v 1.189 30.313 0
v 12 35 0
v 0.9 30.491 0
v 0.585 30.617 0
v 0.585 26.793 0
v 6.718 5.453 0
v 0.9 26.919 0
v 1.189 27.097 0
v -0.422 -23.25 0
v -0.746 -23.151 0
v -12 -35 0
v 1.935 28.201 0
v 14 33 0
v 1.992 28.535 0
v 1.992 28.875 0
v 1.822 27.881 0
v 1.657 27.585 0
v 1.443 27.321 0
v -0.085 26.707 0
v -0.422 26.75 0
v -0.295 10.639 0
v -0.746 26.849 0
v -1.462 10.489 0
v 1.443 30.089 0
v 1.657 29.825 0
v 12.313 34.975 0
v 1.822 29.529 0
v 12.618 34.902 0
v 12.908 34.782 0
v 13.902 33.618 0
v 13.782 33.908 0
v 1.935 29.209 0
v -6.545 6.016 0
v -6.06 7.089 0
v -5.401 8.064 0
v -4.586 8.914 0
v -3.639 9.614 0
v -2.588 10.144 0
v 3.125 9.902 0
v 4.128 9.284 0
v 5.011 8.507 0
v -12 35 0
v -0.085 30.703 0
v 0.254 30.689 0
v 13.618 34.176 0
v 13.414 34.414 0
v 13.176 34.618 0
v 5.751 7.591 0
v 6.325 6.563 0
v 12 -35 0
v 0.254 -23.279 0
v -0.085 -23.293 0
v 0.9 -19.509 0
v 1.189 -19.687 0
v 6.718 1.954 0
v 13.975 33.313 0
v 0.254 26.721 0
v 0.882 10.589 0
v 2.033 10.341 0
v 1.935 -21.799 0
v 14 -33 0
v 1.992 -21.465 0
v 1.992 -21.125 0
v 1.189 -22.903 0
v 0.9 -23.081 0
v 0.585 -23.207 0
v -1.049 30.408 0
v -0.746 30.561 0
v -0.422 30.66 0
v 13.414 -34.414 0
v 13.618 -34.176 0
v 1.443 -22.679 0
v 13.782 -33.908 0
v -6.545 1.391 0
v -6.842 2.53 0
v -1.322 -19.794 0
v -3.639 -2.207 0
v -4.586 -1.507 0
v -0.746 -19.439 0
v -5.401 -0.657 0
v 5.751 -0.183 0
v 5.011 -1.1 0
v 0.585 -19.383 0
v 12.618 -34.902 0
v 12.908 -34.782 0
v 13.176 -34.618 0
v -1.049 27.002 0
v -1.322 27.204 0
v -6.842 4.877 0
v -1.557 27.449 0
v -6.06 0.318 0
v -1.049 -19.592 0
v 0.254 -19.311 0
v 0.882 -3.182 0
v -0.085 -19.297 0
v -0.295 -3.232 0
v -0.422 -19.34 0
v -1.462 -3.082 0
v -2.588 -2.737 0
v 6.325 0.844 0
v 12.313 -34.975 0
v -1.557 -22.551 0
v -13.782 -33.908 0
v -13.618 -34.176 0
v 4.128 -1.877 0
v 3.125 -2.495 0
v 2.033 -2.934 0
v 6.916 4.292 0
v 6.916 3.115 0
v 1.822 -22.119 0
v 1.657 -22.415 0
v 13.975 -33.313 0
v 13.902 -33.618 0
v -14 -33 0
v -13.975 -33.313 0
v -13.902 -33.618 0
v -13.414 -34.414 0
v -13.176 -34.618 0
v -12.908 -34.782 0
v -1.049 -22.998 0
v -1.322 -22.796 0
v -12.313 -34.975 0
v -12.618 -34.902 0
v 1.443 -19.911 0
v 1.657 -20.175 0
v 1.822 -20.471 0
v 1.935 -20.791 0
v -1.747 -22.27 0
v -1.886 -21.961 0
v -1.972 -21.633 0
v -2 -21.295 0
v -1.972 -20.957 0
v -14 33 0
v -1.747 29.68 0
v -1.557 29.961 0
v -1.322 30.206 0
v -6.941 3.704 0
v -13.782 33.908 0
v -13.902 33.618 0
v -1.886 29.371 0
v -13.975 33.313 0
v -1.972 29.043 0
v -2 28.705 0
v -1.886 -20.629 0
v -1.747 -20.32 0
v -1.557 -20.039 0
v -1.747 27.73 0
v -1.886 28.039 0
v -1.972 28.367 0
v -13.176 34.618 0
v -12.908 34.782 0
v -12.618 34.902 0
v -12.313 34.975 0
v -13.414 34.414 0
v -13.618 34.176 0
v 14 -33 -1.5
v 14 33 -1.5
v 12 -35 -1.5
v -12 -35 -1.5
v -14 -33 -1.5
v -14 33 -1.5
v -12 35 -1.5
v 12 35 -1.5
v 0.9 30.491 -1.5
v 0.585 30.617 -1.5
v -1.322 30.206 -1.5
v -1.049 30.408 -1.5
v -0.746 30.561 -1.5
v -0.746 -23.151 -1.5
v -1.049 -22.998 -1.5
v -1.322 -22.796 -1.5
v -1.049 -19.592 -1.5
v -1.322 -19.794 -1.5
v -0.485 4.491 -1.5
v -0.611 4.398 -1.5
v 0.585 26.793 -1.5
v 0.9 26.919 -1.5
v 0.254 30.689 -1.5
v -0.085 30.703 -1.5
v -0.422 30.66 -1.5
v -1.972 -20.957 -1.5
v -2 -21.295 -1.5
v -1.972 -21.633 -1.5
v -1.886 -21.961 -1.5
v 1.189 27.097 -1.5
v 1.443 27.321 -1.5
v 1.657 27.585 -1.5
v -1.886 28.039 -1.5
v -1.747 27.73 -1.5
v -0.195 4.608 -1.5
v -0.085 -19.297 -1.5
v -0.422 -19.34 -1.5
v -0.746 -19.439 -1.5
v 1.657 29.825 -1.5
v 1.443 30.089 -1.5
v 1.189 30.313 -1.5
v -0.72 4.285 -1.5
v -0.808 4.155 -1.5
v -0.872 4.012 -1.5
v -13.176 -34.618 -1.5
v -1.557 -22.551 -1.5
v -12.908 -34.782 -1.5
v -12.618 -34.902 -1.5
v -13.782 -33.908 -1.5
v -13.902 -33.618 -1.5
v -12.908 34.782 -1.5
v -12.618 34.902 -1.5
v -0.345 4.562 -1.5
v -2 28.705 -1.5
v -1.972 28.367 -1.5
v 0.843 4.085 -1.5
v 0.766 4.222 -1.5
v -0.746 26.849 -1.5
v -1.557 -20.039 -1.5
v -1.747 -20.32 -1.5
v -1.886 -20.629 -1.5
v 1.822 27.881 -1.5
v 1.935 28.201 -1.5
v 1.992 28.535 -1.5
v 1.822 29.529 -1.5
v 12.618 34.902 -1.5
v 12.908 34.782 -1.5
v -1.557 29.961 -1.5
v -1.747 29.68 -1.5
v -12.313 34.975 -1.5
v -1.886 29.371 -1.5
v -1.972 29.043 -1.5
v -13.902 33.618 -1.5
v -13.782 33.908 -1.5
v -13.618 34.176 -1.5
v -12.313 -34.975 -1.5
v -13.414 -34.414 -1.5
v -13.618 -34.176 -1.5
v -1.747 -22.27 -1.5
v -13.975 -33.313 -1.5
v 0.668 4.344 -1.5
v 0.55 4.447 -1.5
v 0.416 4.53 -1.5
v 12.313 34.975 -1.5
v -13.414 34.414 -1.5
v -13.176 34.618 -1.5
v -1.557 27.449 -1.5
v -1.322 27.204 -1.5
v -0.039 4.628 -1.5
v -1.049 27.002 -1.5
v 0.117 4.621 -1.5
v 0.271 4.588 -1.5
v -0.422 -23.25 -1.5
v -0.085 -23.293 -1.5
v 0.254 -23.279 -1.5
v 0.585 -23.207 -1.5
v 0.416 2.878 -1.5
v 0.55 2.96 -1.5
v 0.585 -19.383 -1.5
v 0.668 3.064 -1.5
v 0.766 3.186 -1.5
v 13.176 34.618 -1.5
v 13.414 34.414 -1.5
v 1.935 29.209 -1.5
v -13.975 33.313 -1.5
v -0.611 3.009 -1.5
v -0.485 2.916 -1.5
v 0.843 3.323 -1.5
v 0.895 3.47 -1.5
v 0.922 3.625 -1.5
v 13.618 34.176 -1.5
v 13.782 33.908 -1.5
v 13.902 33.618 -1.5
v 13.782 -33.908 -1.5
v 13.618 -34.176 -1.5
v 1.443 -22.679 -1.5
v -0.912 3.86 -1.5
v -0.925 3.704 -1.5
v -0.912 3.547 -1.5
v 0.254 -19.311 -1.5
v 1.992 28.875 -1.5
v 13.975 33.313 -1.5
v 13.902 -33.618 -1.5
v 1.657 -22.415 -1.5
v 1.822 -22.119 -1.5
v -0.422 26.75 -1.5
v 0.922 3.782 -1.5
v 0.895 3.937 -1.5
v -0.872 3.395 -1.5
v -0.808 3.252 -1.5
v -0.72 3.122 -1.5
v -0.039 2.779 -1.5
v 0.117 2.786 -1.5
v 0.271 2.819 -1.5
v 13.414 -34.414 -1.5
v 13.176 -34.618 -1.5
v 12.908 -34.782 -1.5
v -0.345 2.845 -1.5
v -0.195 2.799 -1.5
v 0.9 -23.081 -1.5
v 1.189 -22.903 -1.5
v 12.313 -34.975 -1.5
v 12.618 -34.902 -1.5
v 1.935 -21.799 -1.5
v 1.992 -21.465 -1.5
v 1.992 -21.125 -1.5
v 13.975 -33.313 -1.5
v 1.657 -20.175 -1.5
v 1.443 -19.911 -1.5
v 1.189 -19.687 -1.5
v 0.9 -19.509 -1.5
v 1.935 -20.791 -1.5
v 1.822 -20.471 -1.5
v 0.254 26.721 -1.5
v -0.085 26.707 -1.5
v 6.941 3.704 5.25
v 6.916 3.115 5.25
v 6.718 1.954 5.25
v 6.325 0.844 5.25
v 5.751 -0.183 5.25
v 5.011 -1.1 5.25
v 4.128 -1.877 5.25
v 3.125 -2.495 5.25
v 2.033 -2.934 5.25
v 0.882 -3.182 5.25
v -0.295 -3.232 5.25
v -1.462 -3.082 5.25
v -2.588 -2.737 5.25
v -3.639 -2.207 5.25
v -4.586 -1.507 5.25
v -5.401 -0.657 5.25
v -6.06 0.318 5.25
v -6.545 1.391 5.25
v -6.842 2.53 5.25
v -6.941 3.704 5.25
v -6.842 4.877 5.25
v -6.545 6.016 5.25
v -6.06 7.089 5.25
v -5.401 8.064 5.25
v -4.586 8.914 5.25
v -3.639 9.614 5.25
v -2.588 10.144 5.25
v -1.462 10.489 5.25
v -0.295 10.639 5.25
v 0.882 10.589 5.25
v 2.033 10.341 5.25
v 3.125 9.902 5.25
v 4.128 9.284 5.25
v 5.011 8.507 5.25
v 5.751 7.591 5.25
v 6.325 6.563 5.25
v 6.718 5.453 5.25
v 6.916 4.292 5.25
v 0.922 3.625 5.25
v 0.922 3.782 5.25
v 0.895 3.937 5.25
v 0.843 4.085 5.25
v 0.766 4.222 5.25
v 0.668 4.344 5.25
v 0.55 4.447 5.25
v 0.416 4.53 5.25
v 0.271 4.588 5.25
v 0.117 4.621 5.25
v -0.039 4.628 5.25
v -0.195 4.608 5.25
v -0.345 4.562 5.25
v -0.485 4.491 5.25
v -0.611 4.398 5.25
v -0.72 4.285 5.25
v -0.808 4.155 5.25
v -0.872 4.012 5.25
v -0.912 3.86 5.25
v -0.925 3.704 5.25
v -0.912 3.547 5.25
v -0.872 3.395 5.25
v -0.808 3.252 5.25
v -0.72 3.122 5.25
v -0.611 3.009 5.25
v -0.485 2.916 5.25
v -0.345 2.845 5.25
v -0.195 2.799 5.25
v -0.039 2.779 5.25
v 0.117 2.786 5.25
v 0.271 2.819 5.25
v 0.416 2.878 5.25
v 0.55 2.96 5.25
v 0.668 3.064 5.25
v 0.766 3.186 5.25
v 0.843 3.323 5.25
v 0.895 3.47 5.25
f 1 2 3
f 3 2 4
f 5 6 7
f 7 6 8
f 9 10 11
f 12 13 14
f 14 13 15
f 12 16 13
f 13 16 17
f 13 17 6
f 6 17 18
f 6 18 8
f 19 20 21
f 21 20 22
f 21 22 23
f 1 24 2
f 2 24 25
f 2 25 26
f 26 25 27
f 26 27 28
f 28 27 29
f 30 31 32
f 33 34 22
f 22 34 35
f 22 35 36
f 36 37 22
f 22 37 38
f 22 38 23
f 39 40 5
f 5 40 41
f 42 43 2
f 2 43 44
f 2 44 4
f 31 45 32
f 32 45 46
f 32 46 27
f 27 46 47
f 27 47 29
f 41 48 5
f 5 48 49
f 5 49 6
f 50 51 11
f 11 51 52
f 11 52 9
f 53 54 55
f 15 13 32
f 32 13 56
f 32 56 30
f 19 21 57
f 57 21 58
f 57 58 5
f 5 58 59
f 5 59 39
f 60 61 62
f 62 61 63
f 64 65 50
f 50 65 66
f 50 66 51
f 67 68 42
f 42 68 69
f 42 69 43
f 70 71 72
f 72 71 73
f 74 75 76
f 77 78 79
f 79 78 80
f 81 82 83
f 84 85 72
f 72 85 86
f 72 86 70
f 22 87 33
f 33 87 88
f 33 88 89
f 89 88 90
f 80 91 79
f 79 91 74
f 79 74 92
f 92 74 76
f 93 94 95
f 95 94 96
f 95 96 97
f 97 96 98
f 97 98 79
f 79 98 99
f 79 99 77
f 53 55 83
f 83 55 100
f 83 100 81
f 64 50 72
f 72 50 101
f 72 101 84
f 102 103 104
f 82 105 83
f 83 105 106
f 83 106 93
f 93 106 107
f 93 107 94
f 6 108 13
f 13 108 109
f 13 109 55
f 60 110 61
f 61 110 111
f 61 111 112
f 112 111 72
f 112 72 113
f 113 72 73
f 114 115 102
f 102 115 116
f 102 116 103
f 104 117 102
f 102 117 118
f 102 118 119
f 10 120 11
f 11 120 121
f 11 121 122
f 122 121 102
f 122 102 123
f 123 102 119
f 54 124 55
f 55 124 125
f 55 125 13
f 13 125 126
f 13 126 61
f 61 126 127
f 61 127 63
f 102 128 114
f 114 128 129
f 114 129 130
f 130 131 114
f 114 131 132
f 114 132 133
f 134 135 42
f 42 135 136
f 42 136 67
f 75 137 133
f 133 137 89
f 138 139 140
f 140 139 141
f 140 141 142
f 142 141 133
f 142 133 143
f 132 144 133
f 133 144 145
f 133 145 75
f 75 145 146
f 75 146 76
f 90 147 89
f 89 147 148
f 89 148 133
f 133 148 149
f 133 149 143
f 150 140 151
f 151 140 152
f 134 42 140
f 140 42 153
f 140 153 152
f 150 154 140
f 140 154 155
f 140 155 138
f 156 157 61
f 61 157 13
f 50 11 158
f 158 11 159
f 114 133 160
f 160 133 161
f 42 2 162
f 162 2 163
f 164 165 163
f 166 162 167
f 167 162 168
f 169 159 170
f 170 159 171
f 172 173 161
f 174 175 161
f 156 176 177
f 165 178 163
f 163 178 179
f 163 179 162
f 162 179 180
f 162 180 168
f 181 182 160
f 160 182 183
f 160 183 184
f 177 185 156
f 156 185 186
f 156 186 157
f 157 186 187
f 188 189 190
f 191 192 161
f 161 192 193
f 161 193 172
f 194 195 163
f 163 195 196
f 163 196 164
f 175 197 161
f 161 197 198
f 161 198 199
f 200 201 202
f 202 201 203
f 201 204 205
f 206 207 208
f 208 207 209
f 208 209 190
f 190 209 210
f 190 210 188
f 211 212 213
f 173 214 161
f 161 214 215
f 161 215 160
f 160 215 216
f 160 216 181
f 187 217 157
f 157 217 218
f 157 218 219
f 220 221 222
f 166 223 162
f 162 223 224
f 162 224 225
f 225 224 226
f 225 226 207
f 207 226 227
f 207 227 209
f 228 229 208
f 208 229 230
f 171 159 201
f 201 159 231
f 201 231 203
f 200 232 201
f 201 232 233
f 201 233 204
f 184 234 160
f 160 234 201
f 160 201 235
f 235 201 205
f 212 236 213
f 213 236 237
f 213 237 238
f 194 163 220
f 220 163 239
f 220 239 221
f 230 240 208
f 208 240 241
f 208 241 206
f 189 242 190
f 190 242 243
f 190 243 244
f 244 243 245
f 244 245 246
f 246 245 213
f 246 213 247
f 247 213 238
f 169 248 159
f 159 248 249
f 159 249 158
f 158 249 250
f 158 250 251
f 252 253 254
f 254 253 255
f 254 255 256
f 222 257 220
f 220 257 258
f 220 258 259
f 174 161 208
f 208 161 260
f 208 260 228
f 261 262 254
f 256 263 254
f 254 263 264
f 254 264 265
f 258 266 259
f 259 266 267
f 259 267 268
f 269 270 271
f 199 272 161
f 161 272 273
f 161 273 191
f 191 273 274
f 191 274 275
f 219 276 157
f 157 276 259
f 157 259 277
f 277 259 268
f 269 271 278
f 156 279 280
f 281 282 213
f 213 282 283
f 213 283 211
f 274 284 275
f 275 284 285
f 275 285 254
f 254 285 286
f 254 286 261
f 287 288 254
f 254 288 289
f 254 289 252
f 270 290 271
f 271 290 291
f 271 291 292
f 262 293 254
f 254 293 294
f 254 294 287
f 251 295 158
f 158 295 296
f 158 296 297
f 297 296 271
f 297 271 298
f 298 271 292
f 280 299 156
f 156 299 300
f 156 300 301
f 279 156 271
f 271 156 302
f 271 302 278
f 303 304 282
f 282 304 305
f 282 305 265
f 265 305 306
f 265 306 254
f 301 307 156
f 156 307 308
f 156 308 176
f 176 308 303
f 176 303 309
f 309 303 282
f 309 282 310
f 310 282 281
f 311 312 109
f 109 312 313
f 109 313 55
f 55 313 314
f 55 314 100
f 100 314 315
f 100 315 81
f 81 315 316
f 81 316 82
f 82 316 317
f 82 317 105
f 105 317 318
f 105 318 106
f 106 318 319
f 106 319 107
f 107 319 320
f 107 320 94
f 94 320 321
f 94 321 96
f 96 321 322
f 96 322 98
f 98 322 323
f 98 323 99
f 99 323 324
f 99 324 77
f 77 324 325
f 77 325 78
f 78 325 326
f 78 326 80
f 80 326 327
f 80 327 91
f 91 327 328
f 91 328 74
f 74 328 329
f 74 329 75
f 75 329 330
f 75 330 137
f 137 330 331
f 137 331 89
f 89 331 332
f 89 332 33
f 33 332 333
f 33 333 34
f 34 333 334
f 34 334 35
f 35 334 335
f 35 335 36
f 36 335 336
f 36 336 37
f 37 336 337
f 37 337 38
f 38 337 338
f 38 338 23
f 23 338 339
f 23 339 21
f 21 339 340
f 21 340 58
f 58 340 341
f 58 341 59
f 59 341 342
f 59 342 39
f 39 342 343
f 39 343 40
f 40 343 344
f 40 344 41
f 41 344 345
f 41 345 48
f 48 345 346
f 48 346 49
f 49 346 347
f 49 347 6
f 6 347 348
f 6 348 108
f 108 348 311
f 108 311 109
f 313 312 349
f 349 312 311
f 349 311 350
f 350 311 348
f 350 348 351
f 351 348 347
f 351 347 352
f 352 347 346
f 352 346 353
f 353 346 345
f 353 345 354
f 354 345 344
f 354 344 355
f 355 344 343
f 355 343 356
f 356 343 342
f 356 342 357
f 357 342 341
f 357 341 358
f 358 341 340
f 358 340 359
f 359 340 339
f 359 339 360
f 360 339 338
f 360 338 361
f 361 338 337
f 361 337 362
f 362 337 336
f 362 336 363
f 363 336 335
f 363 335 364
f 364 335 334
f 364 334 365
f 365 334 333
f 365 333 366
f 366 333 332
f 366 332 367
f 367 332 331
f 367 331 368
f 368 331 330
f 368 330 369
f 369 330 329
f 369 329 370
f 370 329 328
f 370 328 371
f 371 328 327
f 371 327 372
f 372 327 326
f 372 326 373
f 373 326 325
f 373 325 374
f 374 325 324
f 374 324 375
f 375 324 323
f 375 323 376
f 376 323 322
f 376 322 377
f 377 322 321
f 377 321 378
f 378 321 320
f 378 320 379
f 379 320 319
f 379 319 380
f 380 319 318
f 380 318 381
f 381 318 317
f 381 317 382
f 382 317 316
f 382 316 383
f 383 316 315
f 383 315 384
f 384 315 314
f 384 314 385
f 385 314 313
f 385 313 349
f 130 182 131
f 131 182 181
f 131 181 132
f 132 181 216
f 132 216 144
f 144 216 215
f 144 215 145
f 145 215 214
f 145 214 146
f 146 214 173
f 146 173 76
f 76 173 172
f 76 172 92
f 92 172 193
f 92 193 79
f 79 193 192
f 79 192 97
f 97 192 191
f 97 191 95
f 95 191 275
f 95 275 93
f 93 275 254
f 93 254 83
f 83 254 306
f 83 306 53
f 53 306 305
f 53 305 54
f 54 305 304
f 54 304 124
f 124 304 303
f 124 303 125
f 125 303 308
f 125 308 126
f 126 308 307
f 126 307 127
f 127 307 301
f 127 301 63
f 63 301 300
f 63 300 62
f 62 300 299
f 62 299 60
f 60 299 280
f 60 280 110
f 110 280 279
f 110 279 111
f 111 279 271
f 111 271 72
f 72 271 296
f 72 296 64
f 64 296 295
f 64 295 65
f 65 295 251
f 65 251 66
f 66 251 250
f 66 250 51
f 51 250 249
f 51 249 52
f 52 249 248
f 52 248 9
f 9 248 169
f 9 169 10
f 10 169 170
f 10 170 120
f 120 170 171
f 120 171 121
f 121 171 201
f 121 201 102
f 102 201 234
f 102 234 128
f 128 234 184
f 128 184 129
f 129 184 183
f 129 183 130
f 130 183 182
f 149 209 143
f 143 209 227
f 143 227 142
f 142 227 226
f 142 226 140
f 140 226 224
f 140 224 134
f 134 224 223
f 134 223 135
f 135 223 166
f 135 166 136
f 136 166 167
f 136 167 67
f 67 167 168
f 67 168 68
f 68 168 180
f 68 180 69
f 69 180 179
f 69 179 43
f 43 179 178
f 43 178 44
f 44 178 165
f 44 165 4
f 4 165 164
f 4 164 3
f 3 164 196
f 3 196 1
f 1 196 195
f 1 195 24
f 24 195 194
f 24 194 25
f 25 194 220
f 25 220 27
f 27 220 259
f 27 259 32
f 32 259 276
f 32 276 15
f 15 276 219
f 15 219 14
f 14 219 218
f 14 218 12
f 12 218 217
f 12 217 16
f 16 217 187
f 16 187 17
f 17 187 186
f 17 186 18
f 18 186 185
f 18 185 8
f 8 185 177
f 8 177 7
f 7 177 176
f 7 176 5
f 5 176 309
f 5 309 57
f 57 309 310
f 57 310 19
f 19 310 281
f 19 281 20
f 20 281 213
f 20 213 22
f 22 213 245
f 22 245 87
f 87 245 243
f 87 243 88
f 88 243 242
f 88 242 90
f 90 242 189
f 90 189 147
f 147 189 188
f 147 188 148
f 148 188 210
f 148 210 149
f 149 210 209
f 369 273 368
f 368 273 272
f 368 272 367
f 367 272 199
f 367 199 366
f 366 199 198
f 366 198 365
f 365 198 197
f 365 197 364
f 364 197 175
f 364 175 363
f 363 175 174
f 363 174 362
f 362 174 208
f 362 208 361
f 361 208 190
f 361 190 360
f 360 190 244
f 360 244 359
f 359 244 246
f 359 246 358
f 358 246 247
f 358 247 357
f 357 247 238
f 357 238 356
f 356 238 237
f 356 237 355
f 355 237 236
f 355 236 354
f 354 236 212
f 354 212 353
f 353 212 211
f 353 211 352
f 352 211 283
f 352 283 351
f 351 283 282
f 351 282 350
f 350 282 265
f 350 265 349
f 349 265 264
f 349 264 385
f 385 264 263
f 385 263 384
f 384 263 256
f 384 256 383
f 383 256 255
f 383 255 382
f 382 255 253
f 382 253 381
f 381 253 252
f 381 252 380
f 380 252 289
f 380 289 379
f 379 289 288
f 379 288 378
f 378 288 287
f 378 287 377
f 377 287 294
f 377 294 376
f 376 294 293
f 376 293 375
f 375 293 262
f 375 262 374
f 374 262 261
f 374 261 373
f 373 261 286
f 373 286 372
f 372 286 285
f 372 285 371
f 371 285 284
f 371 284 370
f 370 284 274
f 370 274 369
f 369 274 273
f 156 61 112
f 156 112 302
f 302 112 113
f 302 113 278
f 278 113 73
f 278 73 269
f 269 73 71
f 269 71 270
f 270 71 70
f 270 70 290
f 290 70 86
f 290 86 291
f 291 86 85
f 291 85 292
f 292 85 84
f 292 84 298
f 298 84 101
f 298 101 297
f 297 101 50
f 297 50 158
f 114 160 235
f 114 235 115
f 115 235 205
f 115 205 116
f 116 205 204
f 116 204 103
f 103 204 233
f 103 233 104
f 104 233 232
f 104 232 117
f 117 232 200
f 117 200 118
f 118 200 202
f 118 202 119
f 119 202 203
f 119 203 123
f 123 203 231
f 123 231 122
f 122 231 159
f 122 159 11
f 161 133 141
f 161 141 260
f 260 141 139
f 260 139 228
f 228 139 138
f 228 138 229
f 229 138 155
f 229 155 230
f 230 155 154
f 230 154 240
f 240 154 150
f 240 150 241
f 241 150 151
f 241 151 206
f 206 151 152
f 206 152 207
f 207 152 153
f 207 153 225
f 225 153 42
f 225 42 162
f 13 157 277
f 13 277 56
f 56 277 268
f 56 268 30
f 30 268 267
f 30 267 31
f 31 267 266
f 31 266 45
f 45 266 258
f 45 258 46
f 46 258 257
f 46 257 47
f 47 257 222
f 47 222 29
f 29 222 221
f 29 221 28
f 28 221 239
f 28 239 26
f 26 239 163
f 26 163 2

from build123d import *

# Parameters (mm, degrees)
SKETCH1_W           = 28
SKETCH1_H           = 70
BOSS_EXTRUDE1_DEPTH = 1.5
SKETCH3_R           = 6.941493401
BOSS_EXTRUDE2_DEPTH = 5.25
SKETCH2_R           = 2
SKETCH2_R_2         = 0.925
CUT_EXTRUDE1_DEPTH  = 39.295724304
FILLET1_R           = 2


with BuildPart() as part:
    # Sketch1 → Boss-Extrude1 (new body)
    with BuildSketch(Plane.XY):
        Rectangle(SKETCH1_W, SKETCH1_H)
    extrude(amount=-BOSS_EXTRUDE1_DEPTH)

    # Sketch3 → Boss-Extrude2 (add)
    with BuildSketch(Plane.XY):
        with Locations(Location((0, 3.703561495, 0), (0, 0, 180))):
            Circle(SKETCH3_R)
    extrude(amount=BOSS_EXTRUDE2_DEPTH)

    # Sketch2 → Cut-Extrude1 (cut, through all)
    with BuildSketch(Plane(origin=(0, 0, -1.5), x_dir=(-1, 0, 0), z_dir=(0, 0, -1))):
        with Locations((0.000493893, -21.295000553)):
            Circle(SKETCH2_R)
        with Locations((0.000493654, 28.705001831)):
            Circle(SKETCH2_R)
        with Locations((0, 3.703561495)):
            Circle(SKETCH2_R_2)
    extrude(amount=-CUT_EXTRUDE1_DEPTH, mode=Mode.SUBTRACT)

    # Fillet1
    fillet1_edges = [part.edges().sort_by_distance(p)[0] for p in [
        (14, 35, -0.75),
        (-14, 35, -0.75),
        (-14, -35, -0.75),
        (14, -35, -0.75),
    ]]
    fillet(fillet1_edges, radius=FILLET1_R)


solid = part.part
